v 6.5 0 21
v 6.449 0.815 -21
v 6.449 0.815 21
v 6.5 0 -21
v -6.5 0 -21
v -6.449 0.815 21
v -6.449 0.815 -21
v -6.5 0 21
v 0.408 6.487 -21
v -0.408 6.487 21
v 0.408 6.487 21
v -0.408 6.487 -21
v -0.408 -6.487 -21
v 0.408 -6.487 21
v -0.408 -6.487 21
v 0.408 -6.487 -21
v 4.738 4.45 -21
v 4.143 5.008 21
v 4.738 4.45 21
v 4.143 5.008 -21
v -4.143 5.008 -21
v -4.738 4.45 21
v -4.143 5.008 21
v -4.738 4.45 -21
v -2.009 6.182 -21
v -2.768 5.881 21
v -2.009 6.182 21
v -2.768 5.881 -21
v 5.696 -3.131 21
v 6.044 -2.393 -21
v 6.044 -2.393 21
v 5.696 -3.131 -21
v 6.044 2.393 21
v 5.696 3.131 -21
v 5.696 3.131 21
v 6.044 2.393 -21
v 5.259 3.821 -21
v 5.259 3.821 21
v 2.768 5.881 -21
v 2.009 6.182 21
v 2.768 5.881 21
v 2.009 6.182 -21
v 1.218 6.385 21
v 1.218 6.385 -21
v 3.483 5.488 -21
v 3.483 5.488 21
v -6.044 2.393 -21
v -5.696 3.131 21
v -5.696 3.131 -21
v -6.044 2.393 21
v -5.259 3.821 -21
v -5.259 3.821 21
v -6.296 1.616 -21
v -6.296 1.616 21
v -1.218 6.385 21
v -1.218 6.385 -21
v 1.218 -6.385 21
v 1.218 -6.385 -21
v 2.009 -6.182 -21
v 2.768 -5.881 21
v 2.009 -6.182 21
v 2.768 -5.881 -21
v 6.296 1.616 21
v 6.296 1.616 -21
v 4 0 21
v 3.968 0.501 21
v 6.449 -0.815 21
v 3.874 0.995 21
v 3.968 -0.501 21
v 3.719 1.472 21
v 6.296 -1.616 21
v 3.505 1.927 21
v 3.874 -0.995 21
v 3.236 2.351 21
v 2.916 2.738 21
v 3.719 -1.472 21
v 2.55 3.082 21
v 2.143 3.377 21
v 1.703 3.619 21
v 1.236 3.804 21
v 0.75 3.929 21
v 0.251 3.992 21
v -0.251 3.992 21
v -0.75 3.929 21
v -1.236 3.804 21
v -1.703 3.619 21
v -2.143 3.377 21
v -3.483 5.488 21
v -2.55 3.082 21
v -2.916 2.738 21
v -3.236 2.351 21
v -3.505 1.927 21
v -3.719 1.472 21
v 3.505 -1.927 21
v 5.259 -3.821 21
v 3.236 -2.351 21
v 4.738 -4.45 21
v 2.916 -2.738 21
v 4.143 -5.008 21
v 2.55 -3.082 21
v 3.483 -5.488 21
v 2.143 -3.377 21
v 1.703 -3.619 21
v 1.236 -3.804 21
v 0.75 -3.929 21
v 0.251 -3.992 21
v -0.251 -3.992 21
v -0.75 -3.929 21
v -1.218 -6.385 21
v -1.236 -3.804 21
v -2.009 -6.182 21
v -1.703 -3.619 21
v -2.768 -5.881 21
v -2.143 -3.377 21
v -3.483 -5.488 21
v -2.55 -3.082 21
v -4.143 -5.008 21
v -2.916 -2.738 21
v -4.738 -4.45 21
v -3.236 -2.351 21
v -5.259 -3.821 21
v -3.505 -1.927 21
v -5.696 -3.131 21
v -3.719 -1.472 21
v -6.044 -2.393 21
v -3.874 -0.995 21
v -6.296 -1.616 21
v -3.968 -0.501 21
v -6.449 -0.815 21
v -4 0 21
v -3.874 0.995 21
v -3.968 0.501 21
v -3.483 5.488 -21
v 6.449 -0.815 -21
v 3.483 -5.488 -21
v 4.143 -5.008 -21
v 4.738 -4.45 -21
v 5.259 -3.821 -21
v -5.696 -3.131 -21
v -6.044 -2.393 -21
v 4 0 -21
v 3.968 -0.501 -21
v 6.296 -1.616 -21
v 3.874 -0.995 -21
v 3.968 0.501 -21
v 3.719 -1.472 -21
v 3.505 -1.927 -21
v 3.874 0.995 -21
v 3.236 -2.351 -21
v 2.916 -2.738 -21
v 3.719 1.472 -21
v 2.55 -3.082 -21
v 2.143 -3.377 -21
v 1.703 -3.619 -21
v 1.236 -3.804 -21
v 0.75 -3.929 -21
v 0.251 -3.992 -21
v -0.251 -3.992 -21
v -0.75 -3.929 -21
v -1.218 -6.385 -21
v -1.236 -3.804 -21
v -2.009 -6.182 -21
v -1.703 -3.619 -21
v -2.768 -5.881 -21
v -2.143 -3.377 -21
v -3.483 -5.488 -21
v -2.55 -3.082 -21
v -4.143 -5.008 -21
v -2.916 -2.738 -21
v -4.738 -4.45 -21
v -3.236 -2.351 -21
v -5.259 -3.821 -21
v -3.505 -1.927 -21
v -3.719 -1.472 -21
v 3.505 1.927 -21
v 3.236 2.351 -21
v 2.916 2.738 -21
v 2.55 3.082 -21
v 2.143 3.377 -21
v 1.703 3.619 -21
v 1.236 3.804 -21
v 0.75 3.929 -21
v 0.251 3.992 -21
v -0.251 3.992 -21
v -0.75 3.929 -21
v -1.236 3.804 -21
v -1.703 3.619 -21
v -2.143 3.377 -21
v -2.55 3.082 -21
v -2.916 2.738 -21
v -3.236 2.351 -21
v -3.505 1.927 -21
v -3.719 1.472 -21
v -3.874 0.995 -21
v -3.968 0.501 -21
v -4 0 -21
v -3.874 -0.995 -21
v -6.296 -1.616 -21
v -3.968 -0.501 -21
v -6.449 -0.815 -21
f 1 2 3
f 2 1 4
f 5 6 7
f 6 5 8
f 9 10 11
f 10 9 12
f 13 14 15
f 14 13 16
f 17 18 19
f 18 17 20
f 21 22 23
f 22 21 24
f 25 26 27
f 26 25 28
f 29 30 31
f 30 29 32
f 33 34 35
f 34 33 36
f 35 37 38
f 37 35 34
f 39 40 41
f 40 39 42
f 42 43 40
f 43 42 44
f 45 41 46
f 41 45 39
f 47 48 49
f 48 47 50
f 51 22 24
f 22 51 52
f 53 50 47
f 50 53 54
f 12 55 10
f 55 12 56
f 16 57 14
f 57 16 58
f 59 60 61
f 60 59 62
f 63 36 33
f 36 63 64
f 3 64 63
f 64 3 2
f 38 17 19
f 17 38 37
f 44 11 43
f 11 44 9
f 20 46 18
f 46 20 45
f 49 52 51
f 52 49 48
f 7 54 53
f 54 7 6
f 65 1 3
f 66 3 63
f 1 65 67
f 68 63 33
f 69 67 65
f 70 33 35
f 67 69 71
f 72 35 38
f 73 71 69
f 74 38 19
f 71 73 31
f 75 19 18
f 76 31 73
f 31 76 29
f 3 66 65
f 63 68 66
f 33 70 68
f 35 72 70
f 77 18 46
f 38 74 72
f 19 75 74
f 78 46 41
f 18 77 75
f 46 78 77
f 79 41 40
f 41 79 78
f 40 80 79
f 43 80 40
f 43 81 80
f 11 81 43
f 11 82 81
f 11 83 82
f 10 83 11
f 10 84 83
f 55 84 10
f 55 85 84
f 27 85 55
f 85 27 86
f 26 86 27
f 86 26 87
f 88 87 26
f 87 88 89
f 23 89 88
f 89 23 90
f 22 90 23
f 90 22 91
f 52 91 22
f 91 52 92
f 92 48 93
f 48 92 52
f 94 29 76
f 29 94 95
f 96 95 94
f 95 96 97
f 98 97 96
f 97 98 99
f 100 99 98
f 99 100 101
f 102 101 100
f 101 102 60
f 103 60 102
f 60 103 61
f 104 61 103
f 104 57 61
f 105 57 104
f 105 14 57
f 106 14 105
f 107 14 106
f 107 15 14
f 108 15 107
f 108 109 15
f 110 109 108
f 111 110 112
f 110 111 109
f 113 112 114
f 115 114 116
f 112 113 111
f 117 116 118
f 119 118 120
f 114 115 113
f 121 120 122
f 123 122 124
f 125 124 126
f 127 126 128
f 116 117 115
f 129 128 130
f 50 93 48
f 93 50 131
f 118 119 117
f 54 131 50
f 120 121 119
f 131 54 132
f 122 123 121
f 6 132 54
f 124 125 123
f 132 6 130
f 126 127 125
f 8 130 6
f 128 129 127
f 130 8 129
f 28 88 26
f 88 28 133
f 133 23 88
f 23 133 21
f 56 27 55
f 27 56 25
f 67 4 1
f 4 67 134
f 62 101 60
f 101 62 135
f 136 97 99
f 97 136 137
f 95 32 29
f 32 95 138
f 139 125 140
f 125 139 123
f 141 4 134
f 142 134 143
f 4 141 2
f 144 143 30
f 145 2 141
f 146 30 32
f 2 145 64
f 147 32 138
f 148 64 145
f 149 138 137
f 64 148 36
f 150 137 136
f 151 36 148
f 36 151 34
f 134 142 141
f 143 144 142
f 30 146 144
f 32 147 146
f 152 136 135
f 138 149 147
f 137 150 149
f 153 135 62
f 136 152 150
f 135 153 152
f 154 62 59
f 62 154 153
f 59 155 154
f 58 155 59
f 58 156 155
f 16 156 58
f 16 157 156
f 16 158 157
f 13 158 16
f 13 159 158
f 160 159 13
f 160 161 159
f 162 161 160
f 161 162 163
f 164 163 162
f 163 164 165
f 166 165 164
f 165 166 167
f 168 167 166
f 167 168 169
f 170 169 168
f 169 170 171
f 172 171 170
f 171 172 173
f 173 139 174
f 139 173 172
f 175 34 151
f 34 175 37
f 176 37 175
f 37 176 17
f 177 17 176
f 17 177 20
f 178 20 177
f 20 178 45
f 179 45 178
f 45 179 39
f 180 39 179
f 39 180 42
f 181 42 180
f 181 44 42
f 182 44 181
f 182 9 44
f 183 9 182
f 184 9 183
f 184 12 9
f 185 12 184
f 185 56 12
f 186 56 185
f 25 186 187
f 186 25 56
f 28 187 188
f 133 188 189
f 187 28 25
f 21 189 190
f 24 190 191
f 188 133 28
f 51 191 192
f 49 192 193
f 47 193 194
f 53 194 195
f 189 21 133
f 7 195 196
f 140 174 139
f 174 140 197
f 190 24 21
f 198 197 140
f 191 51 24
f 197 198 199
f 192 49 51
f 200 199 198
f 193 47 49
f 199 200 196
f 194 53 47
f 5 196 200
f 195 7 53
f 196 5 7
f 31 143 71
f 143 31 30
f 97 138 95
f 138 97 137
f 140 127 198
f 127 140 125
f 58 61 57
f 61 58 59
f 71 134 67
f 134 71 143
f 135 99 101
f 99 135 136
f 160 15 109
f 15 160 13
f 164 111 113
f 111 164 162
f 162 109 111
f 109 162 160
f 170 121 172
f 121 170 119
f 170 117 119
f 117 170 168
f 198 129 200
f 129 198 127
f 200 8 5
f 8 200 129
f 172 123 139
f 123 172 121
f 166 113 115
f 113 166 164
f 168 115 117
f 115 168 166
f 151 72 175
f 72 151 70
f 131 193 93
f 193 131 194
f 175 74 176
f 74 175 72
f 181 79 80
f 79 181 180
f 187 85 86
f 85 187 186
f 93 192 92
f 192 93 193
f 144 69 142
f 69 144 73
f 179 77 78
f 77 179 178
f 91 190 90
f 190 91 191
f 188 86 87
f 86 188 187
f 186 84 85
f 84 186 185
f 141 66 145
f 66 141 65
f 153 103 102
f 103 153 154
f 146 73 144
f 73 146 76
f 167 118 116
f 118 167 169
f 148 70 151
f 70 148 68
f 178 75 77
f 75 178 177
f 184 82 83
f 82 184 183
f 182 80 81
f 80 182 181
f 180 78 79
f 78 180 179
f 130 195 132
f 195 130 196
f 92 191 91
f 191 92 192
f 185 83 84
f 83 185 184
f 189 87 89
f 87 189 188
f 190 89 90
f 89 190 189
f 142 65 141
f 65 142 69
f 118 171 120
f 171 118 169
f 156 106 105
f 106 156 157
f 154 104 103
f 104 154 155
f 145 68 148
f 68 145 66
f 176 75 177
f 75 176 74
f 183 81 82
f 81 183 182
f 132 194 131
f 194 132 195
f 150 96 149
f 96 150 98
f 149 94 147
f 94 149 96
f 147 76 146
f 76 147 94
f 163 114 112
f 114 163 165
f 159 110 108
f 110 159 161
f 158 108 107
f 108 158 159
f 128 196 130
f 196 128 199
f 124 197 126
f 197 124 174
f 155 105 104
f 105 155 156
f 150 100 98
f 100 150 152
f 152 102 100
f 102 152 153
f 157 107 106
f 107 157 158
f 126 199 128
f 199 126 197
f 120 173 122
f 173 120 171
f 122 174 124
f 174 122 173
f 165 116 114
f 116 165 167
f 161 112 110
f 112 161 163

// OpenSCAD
$fn = 50;


difference() {
	union() {
		translate(v = [0, 0, -21.0000000000]) {
			cylinder(h = 42, r = 6.5000000000);
		}
	}
	union() {
		translate(v = [0, 0, -100.0000000000]) {
			cylinder(h = 200, r = 4.0000000000);
		}
	}
}
